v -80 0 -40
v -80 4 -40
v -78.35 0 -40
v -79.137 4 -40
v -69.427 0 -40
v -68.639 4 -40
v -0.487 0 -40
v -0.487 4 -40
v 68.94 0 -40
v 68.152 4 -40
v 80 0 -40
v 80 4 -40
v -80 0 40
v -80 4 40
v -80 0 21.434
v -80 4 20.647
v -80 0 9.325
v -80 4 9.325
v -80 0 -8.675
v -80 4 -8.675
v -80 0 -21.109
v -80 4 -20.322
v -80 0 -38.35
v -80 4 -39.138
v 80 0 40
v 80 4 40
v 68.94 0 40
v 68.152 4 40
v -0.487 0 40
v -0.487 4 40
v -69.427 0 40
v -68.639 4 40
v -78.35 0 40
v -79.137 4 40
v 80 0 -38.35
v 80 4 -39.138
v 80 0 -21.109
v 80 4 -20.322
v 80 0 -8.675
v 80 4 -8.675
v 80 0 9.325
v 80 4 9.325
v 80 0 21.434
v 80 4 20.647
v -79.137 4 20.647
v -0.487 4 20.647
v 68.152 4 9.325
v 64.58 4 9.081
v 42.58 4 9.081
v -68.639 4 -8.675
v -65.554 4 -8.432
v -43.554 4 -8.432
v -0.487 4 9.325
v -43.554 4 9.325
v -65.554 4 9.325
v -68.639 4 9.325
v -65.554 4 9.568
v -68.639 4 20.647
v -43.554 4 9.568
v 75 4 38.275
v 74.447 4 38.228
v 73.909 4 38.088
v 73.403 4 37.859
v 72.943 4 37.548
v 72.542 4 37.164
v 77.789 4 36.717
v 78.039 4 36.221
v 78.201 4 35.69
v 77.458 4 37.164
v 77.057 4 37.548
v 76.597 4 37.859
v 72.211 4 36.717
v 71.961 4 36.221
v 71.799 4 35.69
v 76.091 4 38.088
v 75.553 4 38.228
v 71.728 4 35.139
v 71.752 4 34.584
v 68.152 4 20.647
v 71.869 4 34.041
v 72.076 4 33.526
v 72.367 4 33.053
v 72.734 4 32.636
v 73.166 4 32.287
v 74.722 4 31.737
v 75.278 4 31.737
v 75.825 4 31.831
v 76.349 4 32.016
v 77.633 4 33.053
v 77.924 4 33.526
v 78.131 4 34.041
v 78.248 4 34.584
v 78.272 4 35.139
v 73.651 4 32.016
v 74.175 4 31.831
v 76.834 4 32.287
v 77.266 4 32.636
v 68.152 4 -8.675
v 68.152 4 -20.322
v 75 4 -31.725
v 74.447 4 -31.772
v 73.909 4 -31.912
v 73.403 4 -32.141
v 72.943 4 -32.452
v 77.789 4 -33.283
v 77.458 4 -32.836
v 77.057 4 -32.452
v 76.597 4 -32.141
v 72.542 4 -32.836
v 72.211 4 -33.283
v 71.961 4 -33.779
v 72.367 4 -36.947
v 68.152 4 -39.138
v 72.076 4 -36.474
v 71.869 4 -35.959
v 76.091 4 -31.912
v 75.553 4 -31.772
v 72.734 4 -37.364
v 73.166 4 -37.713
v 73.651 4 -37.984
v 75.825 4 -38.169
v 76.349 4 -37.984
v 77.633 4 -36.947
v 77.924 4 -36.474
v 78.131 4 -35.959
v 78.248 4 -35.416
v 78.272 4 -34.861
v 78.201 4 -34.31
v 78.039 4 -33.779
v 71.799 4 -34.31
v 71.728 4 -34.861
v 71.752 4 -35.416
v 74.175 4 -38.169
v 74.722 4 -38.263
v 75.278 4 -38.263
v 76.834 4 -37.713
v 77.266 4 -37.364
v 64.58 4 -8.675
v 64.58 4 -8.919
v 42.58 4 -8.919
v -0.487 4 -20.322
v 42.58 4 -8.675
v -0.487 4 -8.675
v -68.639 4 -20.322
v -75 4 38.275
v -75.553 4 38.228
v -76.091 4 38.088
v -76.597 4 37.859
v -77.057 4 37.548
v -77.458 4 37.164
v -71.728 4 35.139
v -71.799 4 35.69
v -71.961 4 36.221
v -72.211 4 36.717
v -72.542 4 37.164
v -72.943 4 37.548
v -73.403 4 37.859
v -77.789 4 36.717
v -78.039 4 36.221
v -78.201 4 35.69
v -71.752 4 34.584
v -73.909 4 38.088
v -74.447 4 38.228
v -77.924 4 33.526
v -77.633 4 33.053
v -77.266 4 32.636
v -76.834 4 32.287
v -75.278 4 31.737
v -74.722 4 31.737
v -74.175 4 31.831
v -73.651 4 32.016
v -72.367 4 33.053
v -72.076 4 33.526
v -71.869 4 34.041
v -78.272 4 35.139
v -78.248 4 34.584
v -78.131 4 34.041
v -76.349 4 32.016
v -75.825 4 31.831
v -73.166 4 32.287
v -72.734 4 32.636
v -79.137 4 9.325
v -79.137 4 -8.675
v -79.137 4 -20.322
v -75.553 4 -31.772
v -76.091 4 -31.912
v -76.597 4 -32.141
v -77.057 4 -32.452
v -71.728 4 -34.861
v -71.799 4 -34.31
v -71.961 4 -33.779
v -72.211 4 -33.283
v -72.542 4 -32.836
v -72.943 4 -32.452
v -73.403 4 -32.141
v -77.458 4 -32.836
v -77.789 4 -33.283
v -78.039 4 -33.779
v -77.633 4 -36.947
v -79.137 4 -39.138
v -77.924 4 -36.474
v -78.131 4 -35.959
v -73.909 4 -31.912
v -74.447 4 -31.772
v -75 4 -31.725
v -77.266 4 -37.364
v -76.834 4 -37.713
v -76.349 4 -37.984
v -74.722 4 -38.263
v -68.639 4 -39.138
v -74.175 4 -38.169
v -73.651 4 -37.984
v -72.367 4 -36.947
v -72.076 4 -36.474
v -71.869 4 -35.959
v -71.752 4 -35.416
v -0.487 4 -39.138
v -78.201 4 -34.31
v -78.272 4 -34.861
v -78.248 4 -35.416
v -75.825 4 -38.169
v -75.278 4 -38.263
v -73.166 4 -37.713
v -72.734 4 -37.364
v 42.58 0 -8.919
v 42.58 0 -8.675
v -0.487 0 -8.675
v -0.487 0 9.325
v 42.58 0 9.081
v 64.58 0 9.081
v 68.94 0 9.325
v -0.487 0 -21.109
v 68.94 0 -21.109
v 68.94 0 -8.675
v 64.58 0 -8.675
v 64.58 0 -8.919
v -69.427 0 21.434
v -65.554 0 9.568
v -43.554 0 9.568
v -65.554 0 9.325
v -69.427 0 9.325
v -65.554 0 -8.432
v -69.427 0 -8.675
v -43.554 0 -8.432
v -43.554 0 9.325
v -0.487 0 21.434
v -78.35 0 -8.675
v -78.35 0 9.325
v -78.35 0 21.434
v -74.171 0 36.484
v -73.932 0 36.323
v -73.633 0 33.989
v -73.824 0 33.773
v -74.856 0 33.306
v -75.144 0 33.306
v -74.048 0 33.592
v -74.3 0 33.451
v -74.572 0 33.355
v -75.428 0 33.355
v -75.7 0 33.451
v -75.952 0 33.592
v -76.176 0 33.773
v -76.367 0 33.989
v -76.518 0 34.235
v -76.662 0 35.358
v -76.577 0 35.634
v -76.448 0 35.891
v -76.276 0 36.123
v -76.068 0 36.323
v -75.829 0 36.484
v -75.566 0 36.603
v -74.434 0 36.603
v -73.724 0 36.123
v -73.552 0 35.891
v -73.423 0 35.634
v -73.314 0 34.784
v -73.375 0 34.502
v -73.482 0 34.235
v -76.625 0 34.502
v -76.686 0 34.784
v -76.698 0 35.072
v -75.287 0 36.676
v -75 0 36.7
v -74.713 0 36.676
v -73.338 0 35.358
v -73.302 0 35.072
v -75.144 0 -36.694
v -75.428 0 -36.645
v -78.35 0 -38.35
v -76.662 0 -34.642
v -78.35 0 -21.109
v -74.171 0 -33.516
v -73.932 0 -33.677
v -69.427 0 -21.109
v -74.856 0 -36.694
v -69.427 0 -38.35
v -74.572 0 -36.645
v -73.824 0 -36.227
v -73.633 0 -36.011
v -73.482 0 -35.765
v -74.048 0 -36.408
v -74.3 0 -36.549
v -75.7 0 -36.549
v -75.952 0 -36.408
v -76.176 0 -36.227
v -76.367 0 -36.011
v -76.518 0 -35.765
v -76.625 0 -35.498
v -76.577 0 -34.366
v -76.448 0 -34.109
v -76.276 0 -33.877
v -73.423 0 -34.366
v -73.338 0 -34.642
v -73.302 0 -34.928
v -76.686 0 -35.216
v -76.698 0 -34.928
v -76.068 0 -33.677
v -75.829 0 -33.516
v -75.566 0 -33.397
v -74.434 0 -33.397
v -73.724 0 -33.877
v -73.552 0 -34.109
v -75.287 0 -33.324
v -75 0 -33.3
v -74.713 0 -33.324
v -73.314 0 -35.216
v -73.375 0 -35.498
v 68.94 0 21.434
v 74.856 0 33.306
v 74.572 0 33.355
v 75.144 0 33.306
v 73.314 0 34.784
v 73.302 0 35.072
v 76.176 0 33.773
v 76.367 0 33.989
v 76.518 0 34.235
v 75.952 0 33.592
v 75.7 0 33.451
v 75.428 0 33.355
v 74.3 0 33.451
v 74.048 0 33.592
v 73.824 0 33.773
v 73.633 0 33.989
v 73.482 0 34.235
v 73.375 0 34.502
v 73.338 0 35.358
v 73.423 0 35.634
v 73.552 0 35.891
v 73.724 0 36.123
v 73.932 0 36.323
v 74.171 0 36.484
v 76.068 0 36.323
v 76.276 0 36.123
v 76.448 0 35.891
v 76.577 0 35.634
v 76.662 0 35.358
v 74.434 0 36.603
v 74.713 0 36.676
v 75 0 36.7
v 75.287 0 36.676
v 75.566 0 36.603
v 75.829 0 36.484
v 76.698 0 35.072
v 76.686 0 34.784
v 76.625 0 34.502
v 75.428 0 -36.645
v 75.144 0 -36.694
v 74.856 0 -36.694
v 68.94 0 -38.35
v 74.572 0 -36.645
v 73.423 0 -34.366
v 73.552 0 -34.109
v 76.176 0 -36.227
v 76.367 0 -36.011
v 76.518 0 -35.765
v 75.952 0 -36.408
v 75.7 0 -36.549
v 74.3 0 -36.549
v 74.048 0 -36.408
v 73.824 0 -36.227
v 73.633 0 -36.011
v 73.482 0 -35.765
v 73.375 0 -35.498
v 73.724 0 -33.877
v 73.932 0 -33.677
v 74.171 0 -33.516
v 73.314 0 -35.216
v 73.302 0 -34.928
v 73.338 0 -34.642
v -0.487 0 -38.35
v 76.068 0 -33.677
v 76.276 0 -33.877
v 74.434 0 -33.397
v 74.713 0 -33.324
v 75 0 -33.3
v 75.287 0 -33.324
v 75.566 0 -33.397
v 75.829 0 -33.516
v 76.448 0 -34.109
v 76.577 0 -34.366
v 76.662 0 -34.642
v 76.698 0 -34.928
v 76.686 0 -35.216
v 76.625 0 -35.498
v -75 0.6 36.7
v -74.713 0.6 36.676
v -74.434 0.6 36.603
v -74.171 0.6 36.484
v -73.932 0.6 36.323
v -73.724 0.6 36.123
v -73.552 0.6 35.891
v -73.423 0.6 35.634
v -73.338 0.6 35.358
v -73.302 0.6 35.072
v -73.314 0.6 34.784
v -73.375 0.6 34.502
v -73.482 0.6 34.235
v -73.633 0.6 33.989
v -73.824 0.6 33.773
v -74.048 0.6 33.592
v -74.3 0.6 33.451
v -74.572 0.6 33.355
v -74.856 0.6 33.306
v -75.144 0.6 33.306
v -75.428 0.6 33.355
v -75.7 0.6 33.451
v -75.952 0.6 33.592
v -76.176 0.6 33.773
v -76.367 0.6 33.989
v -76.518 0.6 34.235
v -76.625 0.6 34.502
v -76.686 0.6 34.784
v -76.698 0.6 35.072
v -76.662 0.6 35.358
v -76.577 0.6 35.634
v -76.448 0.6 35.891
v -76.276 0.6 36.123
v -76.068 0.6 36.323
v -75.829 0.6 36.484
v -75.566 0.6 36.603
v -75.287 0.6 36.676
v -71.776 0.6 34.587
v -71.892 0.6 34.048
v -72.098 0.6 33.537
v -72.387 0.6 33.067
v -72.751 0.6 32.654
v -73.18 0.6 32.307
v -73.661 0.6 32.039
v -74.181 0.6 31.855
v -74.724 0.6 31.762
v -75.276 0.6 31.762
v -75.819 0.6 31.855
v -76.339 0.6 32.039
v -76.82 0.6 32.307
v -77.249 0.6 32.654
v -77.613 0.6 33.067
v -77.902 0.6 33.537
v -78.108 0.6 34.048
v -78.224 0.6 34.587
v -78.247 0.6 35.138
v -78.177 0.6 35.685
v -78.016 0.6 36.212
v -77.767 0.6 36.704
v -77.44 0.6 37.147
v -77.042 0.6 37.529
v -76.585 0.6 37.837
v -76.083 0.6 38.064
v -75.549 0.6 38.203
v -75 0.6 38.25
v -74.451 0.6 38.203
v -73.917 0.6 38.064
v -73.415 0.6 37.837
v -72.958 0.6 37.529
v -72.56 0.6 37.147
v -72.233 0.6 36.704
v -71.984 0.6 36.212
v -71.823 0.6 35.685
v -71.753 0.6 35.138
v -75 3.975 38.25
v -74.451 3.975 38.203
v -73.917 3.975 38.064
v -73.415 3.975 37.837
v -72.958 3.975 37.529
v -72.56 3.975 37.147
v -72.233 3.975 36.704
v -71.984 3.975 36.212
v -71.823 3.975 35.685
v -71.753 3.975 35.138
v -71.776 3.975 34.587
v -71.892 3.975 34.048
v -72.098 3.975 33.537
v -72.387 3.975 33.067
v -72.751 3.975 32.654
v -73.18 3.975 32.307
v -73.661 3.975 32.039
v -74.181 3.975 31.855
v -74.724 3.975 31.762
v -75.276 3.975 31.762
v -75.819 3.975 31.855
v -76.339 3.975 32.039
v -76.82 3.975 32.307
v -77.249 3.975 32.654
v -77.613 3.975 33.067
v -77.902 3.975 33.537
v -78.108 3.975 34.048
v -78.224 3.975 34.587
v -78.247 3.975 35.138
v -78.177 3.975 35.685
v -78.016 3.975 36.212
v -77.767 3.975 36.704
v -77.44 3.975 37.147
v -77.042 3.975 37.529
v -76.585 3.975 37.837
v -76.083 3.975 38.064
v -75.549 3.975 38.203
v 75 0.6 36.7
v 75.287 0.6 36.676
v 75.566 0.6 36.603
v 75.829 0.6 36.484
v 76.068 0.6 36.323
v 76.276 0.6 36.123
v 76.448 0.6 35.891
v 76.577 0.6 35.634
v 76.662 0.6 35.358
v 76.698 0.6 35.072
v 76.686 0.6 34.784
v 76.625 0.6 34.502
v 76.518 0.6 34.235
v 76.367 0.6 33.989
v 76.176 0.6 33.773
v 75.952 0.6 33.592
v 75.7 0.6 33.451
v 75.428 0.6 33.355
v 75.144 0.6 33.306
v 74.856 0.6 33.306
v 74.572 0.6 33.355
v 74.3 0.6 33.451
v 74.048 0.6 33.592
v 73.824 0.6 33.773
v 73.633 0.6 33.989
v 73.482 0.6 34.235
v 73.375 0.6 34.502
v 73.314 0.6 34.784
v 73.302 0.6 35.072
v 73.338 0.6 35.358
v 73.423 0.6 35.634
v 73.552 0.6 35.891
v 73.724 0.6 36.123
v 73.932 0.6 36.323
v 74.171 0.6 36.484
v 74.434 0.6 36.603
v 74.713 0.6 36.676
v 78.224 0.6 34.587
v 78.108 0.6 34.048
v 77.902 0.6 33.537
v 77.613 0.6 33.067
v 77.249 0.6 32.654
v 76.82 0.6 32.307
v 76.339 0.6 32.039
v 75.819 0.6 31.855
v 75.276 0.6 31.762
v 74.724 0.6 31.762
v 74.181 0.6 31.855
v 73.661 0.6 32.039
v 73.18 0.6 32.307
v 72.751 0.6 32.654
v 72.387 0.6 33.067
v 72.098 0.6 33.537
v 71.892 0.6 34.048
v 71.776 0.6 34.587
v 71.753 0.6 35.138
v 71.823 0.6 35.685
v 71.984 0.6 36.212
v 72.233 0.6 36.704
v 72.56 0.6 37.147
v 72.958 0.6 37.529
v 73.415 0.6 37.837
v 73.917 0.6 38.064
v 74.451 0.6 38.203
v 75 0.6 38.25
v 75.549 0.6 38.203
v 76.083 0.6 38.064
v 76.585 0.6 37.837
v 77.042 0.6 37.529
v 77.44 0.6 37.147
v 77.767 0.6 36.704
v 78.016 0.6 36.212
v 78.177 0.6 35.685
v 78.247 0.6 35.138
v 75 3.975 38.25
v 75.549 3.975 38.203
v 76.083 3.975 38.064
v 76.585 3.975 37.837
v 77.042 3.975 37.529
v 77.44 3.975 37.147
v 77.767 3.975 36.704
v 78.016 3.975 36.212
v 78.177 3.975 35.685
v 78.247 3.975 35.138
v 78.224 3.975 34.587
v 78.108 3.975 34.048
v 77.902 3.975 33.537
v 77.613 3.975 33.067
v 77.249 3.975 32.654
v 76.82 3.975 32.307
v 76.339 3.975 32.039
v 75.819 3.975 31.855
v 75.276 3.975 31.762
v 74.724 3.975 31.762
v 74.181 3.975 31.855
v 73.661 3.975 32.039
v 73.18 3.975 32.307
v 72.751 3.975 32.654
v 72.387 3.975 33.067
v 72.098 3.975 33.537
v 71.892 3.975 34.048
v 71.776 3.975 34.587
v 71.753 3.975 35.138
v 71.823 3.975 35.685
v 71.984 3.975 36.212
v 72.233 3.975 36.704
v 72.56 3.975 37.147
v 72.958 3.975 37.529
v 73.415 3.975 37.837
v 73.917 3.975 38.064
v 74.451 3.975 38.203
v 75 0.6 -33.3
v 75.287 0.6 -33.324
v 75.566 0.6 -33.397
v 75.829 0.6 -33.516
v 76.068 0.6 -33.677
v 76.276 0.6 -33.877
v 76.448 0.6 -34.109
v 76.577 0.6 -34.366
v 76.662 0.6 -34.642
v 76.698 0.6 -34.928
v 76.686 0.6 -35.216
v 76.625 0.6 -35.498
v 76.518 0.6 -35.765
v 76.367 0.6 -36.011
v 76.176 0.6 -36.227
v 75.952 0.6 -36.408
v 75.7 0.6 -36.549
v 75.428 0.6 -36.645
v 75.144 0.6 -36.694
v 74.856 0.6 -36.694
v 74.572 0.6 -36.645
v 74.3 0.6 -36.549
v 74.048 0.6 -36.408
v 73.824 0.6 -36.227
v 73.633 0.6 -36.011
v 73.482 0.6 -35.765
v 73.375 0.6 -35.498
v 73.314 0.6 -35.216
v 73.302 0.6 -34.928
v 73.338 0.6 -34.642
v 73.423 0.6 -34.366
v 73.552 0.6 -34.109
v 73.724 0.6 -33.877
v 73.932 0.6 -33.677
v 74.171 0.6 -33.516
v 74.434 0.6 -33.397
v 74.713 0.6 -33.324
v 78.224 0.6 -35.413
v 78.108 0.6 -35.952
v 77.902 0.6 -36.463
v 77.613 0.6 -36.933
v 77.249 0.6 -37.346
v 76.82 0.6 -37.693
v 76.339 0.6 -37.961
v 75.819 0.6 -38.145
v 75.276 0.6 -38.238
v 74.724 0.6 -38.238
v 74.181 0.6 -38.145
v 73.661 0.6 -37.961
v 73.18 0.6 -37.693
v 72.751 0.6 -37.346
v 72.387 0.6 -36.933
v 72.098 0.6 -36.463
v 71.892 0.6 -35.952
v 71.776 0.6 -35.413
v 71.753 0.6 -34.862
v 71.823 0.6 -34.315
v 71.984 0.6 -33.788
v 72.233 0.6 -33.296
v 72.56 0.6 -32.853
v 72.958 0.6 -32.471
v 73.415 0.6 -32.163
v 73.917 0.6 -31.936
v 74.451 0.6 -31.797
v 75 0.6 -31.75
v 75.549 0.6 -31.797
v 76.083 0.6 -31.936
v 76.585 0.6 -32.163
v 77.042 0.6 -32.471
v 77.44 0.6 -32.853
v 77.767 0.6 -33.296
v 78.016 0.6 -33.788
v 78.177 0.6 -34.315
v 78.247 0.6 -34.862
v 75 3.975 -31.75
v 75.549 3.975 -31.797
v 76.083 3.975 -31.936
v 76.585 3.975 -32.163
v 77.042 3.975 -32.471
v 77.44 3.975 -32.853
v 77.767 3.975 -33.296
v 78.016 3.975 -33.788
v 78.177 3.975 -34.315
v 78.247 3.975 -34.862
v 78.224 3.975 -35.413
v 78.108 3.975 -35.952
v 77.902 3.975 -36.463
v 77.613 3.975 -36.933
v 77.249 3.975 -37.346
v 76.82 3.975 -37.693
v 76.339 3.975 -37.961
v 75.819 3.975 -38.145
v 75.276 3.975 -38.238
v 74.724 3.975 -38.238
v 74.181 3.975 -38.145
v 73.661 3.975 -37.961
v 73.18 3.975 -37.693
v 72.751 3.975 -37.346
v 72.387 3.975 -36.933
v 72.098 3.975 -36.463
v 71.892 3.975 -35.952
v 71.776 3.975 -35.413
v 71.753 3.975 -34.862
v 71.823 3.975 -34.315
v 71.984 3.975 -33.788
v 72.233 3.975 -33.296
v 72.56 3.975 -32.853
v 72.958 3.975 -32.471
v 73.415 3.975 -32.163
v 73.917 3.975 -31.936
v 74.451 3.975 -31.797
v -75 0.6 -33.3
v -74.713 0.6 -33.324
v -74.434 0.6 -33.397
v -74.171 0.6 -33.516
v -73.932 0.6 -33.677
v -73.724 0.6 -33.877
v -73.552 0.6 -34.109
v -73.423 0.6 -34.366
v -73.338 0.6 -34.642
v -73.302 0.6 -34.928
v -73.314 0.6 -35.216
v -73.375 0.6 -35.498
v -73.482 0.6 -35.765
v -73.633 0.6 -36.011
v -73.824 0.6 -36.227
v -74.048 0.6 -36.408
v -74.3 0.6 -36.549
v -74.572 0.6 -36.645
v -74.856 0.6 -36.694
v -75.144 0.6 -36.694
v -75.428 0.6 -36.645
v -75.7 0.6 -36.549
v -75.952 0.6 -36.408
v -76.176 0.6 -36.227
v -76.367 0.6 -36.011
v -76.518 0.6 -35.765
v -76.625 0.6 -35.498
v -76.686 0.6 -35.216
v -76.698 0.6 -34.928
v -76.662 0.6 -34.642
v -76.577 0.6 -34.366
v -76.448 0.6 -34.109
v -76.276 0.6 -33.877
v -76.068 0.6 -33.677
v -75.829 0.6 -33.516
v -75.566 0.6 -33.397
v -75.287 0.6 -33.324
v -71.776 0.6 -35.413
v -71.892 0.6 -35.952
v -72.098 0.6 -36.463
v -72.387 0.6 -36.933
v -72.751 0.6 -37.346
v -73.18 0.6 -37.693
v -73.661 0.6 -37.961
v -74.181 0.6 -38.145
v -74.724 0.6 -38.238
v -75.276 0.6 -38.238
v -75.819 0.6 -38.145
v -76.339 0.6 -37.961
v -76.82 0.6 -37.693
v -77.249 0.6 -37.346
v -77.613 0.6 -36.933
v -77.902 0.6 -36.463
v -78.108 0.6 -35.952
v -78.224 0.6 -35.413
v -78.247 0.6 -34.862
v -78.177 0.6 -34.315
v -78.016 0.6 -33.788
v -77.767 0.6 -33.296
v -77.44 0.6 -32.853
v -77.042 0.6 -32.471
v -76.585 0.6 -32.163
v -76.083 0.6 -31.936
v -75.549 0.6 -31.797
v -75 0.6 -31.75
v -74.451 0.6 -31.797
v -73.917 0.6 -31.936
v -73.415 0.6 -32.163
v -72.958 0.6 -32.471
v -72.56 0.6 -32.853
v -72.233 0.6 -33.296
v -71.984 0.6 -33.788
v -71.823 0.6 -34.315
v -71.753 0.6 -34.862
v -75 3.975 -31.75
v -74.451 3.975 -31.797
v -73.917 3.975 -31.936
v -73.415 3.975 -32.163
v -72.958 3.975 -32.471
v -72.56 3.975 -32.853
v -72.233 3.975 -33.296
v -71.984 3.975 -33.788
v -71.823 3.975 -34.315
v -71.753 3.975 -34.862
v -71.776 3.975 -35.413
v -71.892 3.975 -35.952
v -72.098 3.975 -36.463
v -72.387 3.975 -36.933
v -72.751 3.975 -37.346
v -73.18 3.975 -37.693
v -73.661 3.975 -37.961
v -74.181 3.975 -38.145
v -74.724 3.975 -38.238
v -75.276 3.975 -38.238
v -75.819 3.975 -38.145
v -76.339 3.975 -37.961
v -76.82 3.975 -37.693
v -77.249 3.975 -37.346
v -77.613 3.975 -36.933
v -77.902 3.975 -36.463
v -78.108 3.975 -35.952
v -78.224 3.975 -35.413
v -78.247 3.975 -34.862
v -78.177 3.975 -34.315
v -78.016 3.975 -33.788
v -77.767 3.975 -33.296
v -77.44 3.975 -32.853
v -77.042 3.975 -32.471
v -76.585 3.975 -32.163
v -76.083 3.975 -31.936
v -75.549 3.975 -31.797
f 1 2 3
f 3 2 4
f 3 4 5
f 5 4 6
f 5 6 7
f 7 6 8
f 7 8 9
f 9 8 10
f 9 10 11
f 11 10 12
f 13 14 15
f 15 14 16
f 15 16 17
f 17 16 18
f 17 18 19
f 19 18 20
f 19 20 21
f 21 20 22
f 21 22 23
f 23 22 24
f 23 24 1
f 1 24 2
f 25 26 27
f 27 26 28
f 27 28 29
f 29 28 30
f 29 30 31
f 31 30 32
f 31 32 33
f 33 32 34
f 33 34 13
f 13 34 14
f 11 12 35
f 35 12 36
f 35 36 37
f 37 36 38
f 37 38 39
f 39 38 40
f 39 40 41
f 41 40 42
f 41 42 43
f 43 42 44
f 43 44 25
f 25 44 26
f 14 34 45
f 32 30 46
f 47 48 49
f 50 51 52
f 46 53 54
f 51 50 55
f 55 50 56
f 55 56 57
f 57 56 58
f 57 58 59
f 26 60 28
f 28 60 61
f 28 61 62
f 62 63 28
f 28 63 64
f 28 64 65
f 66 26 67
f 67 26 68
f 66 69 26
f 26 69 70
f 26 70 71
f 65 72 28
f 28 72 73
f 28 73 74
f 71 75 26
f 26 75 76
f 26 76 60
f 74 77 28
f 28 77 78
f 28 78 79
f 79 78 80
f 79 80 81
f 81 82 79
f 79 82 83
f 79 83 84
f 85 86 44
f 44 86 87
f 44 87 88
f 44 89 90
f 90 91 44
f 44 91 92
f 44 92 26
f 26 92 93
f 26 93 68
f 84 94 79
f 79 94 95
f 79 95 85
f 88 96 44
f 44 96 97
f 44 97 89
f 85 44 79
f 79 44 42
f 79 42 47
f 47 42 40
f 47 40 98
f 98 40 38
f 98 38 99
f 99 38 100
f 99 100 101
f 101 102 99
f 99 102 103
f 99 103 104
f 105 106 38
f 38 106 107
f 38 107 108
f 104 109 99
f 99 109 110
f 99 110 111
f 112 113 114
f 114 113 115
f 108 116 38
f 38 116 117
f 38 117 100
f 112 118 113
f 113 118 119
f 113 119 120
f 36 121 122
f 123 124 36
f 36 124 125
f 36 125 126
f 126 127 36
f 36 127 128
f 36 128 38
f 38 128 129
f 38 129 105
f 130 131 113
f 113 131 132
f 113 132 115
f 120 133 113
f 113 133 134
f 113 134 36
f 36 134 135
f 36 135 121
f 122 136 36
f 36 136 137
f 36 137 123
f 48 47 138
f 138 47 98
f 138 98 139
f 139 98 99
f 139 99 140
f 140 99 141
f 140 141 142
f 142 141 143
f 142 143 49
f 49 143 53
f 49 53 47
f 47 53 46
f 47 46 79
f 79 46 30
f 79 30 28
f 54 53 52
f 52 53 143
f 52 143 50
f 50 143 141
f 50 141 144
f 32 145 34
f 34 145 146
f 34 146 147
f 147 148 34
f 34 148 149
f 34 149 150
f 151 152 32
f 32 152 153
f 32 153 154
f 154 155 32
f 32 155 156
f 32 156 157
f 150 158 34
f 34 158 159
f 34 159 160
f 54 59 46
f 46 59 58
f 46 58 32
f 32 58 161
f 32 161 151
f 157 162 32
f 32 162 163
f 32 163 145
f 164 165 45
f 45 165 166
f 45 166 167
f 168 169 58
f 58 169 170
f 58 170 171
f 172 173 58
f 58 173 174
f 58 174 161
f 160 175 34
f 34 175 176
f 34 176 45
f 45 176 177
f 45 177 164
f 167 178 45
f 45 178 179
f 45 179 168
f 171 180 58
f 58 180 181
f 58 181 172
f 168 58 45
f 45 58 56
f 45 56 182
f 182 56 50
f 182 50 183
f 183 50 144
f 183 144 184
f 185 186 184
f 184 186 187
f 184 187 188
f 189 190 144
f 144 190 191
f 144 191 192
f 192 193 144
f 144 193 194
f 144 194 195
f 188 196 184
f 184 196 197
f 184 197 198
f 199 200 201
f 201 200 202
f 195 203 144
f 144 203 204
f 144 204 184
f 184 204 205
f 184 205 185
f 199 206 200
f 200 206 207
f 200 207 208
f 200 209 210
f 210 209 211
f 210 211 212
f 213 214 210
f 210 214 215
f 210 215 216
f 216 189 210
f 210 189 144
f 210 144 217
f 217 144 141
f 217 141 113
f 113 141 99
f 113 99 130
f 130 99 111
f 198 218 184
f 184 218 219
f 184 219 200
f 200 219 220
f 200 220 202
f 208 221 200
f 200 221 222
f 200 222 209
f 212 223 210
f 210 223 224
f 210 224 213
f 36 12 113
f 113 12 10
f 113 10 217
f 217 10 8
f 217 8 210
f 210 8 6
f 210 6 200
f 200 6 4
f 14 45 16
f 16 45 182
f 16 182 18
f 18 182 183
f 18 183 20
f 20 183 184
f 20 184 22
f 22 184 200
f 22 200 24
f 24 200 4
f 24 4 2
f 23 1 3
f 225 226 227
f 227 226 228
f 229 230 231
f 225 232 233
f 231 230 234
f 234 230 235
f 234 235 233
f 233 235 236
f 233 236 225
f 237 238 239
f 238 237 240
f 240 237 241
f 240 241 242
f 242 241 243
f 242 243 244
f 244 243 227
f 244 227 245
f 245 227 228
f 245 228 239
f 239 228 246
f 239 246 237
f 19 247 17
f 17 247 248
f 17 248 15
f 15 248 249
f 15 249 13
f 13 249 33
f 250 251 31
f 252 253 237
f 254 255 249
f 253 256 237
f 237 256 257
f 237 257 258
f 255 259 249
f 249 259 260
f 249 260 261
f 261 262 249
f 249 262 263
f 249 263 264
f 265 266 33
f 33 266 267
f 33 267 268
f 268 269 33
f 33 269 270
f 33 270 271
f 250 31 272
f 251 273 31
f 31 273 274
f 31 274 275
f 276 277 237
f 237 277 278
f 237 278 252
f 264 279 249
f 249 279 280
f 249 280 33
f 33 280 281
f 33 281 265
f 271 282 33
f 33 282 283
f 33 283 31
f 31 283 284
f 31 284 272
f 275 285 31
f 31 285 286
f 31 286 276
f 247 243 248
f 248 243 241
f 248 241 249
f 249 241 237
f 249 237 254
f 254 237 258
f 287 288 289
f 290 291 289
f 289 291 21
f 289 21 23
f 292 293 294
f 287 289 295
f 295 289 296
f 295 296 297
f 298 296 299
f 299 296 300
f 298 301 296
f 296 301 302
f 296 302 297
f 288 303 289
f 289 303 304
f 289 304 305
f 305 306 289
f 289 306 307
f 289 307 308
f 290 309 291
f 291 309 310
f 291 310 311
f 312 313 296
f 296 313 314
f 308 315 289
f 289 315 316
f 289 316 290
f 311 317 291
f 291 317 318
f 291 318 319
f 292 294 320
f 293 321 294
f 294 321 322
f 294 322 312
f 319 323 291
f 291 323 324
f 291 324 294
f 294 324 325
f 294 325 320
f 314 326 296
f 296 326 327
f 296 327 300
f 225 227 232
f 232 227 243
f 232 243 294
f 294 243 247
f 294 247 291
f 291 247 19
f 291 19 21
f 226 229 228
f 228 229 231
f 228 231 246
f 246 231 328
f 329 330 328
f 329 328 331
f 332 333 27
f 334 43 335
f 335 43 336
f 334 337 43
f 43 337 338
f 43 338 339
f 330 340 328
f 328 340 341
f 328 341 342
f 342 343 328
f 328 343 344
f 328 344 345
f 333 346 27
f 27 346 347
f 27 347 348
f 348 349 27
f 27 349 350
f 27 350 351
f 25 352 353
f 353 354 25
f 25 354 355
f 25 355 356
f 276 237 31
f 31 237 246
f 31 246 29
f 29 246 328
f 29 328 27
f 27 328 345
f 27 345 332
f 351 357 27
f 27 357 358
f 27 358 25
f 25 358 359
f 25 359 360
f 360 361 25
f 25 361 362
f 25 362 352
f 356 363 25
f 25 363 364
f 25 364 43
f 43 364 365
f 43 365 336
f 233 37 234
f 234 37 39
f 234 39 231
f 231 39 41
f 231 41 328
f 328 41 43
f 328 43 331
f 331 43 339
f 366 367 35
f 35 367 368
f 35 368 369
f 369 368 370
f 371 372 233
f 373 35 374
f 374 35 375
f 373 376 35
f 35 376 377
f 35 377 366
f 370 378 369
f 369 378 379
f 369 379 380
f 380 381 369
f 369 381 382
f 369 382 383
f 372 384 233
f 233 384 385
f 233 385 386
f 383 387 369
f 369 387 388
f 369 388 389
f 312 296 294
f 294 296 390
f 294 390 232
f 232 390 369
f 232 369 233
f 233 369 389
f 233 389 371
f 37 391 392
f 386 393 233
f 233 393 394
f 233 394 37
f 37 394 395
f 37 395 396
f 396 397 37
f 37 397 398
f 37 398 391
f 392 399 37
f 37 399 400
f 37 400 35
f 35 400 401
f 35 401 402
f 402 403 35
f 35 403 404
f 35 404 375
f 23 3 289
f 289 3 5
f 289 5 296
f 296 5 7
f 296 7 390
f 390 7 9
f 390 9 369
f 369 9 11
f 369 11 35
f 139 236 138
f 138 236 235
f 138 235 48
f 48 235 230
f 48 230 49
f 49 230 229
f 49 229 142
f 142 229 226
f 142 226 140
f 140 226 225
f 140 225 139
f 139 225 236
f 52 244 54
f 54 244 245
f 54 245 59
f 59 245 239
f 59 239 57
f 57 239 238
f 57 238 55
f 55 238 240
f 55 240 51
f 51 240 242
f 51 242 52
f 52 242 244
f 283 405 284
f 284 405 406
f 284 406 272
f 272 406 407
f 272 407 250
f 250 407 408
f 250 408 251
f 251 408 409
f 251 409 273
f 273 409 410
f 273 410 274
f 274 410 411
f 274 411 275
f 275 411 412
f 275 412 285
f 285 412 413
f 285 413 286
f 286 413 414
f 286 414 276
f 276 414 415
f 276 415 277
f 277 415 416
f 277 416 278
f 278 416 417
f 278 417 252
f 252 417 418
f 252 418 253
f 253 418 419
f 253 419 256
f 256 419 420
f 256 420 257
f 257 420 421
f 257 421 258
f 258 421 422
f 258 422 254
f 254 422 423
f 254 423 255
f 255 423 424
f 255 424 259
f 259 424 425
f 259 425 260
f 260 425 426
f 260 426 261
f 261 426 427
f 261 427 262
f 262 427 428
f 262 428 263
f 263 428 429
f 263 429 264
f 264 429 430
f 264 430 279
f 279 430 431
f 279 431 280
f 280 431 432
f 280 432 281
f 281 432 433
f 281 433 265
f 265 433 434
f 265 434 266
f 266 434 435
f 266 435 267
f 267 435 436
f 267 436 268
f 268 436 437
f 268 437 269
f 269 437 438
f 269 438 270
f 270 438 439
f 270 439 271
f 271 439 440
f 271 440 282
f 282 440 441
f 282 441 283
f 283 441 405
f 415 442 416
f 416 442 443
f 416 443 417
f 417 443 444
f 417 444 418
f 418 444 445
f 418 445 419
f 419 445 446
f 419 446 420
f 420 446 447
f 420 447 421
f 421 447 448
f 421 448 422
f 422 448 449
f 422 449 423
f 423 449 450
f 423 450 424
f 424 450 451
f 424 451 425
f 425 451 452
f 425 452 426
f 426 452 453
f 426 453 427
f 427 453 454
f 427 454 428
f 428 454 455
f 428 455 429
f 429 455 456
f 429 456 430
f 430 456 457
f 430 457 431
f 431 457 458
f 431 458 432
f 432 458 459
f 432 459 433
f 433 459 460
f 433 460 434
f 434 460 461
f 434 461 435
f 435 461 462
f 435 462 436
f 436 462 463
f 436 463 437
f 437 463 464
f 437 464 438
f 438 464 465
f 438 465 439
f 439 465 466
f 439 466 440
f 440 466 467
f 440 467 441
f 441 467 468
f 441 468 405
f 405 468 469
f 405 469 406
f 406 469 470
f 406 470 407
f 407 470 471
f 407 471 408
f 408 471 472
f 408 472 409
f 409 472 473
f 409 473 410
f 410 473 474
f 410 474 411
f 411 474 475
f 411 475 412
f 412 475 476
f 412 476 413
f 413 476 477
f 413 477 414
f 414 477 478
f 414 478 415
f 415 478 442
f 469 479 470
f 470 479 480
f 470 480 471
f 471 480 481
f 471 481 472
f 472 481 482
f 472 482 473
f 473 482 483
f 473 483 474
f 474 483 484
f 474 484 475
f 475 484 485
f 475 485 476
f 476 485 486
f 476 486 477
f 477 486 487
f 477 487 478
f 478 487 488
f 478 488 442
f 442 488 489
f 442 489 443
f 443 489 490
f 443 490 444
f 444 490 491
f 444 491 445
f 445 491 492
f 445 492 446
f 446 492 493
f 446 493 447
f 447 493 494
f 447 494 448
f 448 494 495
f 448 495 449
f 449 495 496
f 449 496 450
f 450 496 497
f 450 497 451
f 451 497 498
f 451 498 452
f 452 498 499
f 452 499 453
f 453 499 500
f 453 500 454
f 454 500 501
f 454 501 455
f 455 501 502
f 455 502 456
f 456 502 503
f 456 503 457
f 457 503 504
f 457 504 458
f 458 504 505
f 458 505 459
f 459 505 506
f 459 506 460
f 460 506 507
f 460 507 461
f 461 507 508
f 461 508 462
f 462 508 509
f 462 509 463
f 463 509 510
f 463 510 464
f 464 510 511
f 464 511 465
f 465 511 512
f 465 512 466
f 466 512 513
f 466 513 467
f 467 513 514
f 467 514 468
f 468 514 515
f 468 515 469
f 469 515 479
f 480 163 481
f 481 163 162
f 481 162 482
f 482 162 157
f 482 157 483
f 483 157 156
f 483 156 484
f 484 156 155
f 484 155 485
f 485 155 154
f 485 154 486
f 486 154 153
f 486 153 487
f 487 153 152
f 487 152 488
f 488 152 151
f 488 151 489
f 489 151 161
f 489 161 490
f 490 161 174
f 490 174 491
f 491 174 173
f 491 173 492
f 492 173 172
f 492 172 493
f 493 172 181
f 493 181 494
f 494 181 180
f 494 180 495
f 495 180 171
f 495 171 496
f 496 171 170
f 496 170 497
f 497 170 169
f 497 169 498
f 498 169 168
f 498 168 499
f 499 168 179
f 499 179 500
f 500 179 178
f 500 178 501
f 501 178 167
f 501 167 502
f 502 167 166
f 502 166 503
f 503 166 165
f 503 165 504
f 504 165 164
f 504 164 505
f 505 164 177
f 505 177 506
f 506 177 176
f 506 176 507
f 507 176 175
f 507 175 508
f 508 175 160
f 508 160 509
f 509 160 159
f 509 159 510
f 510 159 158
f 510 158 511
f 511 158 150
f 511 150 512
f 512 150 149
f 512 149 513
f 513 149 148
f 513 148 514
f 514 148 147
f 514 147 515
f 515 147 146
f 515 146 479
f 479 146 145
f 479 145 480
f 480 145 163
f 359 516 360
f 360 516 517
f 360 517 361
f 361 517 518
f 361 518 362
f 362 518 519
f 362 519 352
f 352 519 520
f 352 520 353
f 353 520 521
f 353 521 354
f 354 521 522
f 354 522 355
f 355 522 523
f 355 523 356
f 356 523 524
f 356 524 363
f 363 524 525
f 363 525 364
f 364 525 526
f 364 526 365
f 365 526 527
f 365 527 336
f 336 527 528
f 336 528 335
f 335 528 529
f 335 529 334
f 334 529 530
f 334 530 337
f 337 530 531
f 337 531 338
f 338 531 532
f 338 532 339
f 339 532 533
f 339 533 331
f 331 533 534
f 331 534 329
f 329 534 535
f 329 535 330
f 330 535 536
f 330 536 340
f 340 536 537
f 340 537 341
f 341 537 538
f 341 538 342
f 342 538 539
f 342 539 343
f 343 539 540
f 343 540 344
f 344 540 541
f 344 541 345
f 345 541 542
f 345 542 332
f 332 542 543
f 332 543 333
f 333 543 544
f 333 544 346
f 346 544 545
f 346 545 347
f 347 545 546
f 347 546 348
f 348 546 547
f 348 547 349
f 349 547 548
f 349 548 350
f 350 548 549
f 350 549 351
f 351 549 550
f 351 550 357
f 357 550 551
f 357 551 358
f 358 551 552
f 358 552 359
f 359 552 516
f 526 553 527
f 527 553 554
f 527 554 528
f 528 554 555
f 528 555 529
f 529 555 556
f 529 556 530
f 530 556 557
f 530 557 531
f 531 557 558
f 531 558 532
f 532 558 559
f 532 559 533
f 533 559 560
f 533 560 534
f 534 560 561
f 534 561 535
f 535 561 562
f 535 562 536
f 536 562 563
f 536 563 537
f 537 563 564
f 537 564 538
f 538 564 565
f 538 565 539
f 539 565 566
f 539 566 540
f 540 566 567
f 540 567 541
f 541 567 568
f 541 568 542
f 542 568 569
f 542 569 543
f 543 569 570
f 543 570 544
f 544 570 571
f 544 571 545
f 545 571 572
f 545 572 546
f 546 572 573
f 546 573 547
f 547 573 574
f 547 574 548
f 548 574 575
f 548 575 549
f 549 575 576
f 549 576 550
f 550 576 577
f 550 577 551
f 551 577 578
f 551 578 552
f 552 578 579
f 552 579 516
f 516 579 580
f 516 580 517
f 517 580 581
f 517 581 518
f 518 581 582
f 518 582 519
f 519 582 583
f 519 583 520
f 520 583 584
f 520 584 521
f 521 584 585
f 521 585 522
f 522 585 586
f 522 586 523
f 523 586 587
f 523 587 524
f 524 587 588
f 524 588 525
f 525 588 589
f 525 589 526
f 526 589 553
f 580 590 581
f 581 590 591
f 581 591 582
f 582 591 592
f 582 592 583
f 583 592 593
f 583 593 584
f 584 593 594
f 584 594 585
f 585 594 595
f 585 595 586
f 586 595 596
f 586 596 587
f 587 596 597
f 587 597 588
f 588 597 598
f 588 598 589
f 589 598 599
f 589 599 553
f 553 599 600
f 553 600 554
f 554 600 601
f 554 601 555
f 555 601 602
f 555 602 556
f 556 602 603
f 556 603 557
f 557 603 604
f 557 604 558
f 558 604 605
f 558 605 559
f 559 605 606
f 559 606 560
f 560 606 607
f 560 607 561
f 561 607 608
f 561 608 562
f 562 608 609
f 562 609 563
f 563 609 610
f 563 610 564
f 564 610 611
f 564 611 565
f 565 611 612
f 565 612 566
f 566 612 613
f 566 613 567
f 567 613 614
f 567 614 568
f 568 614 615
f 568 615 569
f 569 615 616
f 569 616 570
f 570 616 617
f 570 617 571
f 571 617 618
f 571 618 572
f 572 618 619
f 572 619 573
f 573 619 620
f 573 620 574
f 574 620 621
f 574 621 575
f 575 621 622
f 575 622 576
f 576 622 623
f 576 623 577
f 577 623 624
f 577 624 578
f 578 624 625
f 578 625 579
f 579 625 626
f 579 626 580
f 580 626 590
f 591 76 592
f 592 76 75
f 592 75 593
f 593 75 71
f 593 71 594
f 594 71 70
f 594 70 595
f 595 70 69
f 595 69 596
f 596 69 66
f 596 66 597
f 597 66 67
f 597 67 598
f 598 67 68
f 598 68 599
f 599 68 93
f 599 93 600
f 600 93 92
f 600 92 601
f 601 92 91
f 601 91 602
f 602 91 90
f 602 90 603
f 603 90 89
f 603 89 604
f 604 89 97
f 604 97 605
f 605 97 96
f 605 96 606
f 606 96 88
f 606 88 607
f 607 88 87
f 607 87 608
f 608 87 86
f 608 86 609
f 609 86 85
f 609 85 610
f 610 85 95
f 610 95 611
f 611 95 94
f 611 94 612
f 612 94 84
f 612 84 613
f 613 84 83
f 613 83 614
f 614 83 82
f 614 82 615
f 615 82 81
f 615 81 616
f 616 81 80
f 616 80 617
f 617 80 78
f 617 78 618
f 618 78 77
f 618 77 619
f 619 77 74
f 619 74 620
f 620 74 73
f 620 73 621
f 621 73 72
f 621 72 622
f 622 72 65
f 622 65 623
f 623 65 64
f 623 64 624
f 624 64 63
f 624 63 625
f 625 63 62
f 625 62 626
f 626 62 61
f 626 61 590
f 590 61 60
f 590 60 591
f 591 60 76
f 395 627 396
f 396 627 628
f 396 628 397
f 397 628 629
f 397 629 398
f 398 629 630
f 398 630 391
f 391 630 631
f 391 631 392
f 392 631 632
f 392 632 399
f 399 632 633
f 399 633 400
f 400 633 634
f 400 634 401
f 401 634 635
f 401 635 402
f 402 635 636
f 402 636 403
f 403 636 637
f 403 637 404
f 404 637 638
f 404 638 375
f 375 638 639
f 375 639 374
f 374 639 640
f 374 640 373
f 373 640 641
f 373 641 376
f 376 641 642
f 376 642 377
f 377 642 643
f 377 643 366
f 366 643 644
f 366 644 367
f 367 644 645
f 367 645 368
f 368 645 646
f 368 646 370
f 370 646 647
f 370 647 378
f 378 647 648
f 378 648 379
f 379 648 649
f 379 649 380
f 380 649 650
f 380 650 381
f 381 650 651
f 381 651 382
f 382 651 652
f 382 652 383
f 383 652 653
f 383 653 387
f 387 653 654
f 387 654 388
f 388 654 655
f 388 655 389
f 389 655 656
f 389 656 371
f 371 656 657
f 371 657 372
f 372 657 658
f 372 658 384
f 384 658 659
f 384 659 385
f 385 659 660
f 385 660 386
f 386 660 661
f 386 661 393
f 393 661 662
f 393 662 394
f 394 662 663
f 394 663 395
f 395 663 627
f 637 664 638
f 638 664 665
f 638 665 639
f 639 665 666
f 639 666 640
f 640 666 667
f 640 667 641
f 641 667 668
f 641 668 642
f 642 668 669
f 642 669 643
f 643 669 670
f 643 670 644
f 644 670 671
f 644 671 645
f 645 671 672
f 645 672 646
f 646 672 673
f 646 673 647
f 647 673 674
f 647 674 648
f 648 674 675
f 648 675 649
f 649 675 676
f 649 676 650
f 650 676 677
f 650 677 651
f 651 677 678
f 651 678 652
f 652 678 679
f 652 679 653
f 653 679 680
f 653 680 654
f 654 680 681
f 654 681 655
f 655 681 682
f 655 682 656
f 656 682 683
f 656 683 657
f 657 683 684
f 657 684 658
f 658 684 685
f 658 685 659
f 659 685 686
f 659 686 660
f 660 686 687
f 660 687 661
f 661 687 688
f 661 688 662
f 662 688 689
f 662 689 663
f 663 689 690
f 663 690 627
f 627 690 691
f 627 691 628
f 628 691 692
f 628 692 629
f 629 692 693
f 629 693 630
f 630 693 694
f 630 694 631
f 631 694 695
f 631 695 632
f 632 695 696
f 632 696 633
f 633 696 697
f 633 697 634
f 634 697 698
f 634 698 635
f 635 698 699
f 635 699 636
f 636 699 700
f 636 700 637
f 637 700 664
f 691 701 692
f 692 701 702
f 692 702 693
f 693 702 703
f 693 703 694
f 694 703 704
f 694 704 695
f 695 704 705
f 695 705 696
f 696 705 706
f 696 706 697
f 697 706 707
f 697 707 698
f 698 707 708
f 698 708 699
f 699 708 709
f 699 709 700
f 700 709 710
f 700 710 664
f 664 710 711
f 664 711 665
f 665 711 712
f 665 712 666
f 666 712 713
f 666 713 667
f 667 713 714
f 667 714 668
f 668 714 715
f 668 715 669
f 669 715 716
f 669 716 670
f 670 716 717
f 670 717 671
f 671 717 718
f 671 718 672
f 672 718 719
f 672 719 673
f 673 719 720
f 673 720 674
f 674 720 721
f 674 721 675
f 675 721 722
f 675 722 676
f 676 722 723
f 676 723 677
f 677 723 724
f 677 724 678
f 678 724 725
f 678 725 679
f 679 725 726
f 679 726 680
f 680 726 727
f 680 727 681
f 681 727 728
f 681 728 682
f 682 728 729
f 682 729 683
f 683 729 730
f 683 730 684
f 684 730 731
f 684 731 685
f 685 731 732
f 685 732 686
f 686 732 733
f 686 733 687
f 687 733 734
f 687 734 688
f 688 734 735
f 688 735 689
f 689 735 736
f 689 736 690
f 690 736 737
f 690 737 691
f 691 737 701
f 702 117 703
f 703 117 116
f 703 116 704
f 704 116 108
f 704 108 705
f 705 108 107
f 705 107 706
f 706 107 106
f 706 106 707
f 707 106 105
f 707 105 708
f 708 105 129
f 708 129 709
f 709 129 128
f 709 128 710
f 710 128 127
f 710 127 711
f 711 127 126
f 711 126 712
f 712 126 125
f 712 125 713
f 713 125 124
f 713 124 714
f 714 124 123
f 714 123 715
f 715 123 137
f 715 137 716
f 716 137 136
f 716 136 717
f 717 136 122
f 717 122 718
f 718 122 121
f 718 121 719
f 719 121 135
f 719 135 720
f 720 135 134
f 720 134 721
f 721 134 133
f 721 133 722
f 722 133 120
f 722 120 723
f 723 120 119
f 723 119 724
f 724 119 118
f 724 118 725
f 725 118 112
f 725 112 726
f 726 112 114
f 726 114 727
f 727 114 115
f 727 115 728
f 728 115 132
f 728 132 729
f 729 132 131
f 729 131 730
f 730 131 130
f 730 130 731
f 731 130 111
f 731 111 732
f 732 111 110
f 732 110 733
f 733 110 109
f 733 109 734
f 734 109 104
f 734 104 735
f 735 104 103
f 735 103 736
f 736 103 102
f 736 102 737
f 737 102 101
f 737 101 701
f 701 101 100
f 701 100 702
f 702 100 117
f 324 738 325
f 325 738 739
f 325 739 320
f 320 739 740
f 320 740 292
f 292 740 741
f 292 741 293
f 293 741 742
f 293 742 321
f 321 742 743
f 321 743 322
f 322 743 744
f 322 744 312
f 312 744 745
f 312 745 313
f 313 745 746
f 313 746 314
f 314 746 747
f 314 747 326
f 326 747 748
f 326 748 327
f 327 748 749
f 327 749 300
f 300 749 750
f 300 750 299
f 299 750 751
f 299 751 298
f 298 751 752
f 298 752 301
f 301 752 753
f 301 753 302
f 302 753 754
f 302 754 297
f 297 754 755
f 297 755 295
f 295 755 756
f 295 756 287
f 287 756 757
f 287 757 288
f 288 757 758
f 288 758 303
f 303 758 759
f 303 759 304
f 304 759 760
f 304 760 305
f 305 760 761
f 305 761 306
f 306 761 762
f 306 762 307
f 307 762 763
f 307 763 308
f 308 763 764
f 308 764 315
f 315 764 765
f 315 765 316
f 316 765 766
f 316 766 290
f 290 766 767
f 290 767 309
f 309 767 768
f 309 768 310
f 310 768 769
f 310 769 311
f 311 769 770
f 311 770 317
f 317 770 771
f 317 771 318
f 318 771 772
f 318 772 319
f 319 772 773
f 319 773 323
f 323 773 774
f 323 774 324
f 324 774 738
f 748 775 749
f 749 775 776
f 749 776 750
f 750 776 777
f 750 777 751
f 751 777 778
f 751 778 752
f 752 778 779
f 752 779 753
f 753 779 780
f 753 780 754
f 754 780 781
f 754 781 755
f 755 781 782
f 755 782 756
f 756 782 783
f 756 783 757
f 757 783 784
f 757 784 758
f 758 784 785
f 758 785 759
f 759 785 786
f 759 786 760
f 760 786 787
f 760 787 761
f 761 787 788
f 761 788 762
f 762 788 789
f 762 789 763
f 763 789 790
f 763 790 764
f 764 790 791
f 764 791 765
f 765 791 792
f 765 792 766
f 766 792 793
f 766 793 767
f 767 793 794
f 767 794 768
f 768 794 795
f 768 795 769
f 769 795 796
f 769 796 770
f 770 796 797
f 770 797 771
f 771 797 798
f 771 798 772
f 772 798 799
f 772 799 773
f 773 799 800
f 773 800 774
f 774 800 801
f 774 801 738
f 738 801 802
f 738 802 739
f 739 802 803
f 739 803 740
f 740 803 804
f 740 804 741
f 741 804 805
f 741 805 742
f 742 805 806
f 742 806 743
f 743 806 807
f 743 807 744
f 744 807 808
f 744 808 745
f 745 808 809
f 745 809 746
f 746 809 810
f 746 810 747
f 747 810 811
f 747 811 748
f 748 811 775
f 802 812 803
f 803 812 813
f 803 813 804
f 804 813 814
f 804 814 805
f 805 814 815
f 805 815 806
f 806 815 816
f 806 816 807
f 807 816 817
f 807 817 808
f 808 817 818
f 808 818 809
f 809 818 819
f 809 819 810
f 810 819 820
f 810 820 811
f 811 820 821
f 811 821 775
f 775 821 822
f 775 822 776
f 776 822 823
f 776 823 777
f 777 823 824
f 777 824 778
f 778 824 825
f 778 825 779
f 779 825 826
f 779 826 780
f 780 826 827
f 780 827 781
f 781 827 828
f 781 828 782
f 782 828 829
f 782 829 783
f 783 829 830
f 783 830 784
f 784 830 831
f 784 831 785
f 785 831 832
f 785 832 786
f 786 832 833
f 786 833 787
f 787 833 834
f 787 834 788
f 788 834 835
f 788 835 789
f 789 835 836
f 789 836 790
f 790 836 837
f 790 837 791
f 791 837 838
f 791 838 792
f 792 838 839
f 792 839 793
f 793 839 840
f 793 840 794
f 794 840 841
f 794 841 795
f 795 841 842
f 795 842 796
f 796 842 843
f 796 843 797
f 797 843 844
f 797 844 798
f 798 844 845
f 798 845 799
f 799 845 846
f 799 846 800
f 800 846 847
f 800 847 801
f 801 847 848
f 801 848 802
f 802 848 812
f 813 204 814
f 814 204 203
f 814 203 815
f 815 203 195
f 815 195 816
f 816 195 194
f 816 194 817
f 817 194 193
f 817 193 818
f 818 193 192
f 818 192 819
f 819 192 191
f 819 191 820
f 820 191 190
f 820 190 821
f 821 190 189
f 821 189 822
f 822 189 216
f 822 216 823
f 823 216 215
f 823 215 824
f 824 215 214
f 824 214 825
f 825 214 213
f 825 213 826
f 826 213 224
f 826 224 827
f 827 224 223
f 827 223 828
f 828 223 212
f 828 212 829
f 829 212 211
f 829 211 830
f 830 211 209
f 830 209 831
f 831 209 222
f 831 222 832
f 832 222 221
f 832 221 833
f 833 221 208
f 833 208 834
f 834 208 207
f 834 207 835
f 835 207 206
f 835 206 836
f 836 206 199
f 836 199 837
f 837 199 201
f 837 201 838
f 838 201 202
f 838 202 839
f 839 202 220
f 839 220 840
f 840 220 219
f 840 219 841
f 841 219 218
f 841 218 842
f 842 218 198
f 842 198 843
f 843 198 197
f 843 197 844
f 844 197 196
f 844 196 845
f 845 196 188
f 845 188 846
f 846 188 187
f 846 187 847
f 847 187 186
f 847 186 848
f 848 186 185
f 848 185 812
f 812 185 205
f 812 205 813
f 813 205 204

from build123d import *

# Parameters (mm, degrees)
SKETCH2_W                                    = 160
SKETCH2_H                                    = 80
BOSS_EXTRUDE1_DEPTH                          = 4
SKETCH3_W                                    = 22
SKETCH3_H                                    = 18
CUT_EXTRUDE1_DEPTH                           = 11
CBORE_FOR_M3_HEX_SOCKET_HEAD_CAP_SCR_2_COUNT = 2
CBORE_FOR_M3_HEX_SOCKET_HEAD_CAP_SCR_2_PITCH = 150
CBORE_FOR_M3_HEX_SOCKET_HEAD_CAP_SCR_3_COUNT = 2
CBORE_FOR_M3_HEX_SOCKET_HEAD_CAP_SCR_3_PITCH = 165.529453572
CBORE_FOR_M3_HEX_SOCKET_HEAD_CAP_SCR_4_COUNT = 2
CBORE_FOR_M3_HEX_SOCKET_HEAD_CAP_SCR_4_PITCH = 70


with BuildPart() as part:
    # Sketch2 → Boss-Extrude1 (new body)
    with BuildSketch(Plane(origin=(0, 0, 0), x_dir=(1, 0, 0), z_dir=(0, 1, 0))):
        Rectangle(SKETCH2_W, SKETCH2_H)
    extrude(amount=BOSS_EXTRUDE1_DEPTH)

    # Sketch3 → Cut-Extrude1 (cut)
    with BuildSketch(Plane(origin=(0, 4, 0), x_dir=(1, 0, 0), z_dir=(0, 1, 0))):
        with Locations((-54.553971888, -0.568270541)):
            Rectangle(SKETCH3_W, SKETCH3_H)
        with Locations((53.579793819, -0.081181506)):
            Rectangle(SKETCH3_W, SKETCH3_H)
    extrude(amount=-CUT_EXTRUDE1_DEPTH, mode=Mode.SUBTRACT)

    # Sketch7 → CBORE for M3 Hex Socket Head Cap Screw1 (revolve, cut)
    with BuildSketch(Plane(origin=(-75, 4, -35), x_dir=(0, 0, 1), z_dir=(1, 0, 0))):
        Polygon((0, 0), (0, 4), (1.7, 4), (1.7, 3.4), (3.25, 3.4), (3.25, 0.025), (3.275, 0), align=None)
    cbore_for_m3_hex_socket_head_cap_screw1 = revolve(axis=Axis((-75, 10.35, -35), (0, -1, 0)), mode=Mode.SUBTRACT)

    # CBORE for M3 Hex Socket Head Cap Scr 2: CBORE for M3 Hex Socket Head Cap Screw1 ×2
    with Locations(*[(i * CBORE_FOR_M3_HEX_SOCKET_HEAD_CAP_SCR_2_PITCH, 0, 0) for i in range(1, CBORE_FOR_M3_HEX_SOCKET_HEAD_CAP_SCR_2_COUNT)]):
        add(cbore_for_m3_hex_socket_head_cap_screw1, mode=Mode.SUBTRACT)

    # CBORE for M3 Hex Socket Head Cap Scr 3: CBORE for M3 Hex Socket Head Cap Screw1 ×2
    with Locations(*[Vector(0.9061831399952655, 0, 0.4228854653311239) * (i * CBORE_FOR_M3_HEX_SOCKET_HEAD_CAP_SCR_3_PITCH) for i in range(1, CBORE_FOR_M3_HEX_SOCKET_HEAD_CAP_SCR_3_COUNT)]):
        add(cbore_for_m3_hex_socket_head_cap_screw1, mode=Mode.SUBTRACT)

    # CBORE for M3 Hex Socket Head Cap Scr 4: CBORE for M3 Hex Socket Head Cap Screw1 ×2
    with Locations(*[(0, 0, i * CBORE_FOR_M3_HEX_SOCKET_HEAD_CAP_SCR_4_PITCH) for i in range(1, CBORE_FOR_M3_HEX_SOCKET_HEAD_CAP_SCR_4_COUNT)]):
        add(cbore_for_m3_hex_socket_head_cap_screw1, mode=Mode.SUBTRACT)


solid = part.part
